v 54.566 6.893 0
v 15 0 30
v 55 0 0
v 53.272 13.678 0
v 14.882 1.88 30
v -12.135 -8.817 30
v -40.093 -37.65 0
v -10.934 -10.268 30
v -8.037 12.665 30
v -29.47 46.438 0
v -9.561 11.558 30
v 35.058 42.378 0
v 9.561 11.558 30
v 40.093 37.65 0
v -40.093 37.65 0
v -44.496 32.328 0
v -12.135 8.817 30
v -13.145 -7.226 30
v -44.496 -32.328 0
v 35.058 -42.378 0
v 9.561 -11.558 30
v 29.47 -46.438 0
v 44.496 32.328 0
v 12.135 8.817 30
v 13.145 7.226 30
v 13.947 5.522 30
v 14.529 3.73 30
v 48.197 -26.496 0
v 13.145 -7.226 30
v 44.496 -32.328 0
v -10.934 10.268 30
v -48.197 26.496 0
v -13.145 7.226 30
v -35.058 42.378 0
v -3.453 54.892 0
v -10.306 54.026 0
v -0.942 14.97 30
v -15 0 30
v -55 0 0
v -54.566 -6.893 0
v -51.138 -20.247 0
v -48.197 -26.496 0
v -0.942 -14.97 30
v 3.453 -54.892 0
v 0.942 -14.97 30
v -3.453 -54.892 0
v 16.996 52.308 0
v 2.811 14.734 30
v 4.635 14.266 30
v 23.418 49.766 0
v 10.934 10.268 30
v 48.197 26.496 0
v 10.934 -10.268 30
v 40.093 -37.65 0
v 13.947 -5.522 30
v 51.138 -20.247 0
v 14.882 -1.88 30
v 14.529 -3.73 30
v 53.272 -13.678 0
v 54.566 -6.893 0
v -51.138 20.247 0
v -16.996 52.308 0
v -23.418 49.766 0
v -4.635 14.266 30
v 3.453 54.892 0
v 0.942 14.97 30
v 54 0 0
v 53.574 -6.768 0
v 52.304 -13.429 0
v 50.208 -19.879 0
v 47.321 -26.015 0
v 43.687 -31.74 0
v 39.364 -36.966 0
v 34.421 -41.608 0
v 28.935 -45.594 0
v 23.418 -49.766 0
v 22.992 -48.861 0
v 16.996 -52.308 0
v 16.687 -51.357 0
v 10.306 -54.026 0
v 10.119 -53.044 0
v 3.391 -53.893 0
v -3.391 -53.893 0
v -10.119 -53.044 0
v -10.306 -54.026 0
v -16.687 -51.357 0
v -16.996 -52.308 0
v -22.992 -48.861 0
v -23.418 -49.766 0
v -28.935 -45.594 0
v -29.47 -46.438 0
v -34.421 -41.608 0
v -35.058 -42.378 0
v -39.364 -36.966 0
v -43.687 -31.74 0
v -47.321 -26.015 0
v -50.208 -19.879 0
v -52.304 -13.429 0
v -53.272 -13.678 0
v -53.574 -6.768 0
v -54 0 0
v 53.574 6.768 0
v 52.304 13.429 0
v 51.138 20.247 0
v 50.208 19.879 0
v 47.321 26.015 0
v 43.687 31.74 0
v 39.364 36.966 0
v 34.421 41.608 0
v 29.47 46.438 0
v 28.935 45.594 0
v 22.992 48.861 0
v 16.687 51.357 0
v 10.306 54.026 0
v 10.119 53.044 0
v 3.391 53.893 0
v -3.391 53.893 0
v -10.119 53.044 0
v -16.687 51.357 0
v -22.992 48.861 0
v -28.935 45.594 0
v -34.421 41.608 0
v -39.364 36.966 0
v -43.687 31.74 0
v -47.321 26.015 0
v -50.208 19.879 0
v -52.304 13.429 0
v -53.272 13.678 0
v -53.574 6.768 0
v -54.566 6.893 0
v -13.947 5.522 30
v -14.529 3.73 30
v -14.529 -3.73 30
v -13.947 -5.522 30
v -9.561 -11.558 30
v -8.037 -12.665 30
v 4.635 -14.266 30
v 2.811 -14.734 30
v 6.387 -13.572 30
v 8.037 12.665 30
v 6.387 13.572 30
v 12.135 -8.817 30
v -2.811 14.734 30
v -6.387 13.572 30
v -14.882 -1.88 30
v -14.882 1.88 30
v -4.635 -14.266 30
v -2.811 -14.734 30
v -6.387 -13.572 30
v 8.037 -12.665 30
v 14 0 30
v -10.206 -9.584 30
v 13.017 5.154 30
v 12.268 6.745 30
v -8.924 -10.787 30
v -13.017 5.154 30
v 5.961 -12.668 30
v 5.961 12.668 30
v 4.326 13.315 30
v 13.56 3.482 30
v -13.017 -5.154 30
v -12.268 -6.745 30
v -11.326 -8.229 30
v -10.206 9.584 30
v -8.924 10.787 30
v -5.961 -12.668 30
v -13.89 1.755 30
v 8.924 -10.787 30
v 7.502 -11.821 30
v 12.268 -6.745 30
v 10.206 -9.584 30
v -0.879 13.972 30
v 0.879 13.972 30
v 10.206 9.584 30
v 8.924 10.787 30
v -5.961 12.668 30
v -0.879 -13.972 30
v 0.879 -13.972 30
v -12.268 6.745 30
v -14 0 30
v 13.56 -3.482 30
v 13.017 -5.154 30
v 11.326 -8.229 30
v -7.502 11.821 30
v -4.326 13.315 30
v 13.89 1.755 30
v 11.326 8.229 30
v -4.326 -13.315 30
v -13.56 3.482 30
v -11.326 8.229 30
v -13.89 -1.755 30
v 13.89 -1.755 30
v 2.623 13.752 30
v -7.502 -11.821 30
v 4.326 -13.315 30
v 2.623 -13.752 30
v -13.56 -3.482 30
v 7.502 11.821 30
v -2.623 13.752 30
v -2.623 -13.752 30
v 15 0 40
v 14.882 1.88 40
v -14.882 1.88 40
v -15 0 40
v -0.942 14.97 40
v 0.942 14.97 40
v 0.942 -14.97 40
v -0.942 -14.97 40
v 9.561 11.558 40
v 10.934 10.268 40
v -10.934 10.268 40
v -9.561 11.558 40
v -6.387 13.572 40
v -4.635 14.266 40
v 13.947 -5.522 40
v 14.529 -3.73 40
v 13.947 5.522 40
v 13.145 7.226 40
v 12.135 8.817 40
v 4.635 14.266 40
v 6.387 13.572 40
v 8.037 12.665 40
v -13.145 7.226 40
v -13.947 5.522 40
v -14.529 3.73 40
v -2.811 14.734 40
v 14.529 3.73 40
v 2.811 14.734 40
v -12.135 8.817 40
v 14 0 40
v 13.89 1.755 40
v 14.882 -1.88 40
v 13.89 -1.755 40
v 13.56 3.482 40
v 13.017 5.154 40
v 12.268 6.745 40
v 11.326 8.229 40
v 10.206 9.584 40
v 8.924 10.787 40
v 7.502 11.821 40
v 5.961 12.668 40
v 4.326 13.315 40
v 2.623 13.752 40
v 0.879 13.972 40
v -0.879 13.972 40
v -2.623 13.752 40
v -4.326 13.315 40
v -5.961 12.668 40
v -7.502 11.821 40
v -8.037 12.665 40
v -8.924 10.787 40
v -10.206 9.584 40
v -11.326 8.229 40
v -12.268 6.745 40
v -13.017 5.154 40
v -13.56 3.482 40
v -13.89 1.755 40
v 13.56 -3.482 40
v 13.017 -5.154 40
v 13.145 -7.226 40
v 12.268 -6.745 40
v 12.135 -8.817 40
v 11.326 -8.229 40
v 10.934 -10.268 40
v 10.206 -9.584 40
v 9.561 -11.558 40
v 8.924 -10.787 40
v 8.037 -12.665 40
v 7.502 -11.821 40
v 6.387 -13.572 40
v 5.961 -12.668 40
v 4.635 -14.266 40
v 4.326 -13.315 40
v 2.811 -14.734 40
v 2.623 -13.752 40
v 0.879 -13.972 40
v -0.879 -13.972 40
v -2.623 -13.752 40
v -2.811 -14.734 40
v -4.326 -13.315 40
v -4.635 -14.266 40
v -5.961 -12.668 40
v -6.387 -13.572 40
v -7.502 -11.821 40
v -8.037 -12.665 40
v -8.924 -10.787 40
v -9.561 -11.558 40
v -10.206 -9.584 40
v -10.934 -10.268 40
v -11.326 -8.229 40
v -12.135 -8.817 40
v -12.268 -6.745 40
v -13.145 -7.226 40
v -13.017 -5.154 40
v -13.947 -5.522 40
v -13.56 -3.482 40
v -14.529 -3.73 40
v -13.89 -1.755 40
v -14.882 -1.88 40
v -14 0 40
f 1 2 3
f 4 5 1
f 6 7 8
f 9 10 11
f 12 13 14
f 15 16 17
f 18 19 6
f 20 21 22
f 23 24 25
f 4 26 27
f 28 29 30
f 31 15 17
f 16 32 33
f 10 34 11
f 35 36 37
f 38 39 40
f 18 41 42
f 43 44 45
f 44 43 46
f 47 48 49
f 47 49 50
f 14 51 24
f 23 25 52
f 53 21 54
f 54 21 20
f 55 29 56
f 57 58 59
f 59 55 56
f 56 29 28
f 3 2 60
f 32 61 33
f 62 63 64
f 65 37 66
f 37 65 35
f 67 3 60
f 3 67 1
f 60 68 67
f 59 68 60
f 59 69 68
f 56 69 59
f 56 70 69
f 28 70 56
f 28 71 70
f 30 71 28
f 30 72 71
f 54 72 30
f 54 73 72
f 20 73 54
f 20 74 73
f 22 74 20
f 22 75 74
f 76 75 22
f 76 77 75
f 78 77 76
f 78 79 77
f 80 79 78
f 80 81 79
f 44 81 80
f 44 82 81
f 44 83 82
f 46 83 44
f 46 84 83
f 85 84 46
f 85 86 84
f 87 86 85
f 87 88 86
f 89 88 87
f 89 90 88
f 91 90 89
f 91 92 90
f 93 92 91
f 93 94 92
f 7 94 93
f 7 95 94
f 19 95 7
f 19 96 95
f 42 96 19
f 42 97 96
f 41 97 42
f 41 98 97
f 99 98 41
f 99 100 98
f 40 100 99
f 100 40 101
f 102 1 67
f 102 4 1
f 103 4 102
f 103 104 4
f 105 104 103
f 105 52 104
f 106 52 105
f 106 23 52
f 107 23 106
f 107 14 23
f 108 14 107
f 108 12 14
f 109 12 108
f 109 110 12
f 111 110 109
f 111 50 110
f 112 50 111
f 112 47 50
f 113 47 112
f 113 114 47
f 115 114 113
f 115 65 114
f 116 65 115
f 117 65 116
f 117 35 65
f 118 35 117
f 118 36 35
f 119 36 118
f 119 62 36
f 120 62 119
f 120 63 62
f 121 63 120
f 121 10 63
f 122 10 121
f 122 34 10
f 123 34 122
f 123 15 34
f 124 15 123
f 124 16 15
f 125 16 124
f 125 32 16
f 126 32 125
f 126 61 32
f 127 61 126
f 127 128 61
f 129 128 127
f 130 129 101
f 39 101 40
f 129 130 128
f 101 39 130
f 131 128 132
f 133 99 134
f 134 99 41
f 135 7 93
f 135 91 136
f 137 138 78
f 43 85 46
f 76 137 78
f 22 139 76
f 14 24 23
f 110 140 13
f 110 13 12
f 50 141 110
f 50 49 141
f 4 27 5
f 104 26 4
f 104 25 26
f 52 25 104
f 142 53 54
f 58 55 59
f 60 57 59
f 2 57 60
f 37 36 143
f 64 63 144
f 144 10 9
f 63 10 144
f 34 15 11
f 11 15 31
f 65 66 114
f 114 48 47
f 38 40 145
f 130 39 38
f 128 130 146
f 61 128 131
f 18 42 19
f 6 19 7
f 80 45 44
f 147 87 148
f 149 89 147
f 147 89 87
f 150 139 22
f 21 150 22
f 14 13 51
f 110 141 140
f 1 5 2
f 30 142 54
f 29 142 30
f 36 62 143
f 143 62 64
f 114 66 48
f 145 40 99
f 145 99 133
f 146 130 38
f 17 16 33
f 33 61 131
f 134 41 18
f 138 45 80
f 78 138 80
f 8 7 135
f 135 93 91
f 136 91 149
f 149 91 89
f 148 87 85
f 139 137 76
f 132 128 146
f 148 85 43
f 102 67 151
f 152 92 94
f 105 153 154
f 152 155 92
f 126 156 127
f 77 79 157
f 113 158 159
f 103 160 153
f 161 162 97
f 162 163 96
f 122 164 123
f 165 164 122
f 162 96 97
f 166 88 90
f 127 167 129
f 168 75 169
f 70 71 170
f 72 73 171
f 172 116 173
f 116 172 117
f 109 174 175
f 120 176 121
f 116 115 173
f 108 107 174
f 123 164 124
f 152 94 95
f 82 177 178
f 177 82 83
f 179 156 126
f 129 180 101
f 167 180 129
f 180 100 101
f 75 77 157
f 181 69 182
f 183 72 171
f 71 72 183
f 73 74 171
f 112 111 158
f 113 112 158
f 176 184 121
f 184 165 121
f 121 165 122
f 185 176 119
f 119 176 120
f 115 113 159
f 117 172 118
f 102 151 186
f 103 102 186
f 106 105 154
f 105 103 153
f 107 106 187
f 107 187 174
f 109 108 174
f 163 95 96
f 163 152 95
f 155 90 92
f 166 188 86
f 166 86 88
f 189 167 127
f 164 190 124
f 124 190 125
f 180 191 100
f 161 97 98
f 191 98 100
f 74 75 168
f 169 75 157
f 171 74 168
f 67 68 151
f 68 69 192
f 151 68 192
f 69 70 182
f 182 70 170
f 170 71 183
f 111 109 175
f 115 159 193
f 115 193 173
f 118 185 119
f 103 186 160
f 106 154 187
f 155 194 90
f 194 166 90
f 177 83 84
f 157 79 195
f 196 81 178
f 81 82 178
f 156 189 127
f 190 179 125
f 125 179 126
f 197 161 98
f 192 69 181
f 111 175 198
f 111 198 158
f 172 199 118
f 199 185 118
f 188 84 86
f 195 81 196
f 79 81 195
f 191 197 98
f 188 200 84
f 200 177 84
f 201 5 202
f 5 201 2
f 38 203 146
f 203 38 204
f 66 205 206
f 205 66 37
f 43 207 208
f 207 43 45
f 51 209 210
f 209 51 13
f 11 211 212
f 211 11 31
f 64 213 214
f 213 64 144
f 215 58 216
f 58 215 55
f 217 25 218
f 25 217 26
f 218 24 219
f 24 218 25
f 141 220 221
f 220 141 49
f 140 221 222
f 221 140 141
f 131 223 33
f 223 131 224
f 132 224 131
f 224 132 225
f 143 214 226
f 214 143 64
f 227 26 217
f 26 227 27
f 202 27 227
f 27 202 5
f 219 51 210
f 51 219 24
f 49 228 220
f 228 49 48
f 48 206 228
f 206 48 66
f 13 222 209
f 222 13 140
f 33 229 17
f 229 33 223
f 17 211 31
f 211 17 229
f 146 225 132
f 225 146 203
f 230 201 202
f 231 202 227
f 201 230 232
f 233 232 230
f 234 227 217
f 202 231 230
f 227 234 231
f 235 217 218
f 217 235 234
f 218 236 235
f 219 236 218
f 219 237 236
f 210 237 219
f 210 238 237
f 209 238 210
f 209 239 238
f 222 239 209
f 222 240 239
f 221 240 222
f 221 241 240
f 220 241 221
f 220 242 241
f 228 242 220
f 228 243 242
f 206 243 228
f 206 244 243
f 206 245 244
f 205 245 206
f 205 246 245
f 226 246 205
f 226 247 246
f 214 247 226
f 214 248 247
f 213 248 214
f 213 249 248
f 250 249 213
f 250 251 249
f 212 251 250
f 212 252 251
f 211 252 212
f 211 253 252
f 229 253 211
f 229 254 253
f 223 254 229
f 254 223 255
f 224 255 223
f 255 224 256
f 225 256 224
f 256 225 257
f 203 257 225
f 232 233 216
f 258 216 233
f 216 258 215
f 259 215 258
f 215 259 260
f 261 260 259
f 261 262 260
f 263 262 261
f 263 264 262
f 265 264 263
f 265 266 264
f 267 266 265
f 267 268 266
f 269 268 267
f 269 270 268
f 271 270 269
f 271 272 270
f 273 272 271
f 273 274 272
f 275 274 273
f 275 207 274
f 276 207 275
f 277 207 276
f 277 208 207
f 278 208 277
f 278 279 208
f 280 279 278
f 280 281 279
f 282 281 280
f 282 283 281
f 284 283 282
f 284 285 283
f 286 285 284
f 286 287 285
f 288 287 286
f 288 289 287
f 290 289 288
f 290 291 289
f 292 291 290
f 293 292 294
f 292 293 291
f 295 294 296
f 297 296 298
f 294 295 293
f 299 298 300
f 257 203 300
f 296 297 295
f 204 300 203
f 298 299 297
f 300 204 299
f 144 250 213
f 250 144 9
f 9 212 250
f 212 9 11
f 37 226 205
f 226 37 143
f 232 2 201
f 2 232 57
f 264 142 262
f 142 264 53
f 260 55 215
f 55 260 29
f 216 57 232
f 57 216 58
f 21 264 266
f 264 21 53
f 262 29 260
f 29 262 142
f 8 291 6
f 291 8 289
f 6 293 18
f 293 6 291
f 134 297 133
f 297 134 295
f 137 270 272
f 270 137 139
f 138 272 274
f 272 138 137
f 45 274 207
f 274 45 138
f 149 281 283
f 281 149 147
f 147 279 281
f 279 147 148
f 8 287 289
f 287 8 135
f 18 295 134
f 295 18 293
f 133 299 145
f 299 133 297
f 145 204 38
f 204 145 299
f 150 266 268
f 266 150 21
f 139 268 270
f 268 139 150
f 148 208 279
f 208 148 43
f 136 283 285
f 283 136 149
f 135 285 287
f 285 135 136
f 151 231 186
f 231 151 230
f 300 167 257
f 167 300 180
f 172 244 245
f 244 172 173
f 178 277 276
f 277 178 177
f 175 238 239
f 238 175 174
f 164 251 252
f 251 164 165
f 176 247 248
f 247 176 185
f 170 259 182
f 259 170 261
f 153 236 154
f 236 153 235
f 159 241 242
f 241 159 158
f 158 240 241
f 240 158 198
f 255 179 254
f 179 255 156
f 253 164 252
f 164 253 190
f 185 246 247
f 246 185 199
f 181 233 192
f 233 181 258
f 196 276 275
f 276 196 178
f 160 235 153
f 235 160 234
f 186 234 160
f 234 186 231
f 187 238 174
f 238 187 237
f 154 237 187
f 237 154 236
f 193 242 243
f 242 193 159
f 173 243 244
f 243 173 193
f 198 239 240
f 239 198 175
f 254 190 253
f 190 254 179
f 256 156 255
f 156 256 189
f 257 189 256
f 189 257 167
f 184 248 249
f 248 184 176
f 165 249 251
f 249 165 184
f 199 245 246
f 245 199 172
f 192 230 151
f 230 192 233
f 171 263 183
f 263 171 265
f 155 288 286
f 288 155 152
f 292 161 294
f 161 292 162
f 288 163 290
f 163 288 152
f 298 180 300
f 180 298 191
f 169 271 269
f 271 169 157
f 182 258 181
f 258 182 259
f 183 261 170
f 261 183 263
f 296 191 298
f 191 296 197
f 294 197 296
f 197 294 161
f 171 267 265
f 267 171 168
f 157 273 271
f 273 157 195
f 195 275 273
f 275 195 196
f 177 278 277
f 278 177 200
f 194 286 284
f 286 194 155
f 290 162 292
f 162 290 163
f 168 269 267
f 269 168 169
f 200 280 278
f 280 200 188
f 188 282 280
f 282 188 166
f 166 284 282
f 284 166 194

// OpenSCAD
$fn = 50;


difference() {
	union() {
		translate(v = [0, 0, 0]) {
			rotate(a = [0, 0, 0]) {
				difference() {
					union() {
						cylinder(h = 30, r1 = 55.0000000000, r2 = 15.0000000000);
					}
					union() {
						cylinder(h = 30, r1 = 54.0000000000, r2 = 14.0000000000);
					}
				}
			}
		}
		translate(v = [0, 0, 30]) {
			rotate(a = [0, 0, 0]) {
				difference() {
					union() {
						cylinder(h = 10, r = 15.0000000000);
					}
					union() {
						cylinder(h = 10, r = 14.0000000000);
					}
				}
			}
		}
	}
	union();
}
